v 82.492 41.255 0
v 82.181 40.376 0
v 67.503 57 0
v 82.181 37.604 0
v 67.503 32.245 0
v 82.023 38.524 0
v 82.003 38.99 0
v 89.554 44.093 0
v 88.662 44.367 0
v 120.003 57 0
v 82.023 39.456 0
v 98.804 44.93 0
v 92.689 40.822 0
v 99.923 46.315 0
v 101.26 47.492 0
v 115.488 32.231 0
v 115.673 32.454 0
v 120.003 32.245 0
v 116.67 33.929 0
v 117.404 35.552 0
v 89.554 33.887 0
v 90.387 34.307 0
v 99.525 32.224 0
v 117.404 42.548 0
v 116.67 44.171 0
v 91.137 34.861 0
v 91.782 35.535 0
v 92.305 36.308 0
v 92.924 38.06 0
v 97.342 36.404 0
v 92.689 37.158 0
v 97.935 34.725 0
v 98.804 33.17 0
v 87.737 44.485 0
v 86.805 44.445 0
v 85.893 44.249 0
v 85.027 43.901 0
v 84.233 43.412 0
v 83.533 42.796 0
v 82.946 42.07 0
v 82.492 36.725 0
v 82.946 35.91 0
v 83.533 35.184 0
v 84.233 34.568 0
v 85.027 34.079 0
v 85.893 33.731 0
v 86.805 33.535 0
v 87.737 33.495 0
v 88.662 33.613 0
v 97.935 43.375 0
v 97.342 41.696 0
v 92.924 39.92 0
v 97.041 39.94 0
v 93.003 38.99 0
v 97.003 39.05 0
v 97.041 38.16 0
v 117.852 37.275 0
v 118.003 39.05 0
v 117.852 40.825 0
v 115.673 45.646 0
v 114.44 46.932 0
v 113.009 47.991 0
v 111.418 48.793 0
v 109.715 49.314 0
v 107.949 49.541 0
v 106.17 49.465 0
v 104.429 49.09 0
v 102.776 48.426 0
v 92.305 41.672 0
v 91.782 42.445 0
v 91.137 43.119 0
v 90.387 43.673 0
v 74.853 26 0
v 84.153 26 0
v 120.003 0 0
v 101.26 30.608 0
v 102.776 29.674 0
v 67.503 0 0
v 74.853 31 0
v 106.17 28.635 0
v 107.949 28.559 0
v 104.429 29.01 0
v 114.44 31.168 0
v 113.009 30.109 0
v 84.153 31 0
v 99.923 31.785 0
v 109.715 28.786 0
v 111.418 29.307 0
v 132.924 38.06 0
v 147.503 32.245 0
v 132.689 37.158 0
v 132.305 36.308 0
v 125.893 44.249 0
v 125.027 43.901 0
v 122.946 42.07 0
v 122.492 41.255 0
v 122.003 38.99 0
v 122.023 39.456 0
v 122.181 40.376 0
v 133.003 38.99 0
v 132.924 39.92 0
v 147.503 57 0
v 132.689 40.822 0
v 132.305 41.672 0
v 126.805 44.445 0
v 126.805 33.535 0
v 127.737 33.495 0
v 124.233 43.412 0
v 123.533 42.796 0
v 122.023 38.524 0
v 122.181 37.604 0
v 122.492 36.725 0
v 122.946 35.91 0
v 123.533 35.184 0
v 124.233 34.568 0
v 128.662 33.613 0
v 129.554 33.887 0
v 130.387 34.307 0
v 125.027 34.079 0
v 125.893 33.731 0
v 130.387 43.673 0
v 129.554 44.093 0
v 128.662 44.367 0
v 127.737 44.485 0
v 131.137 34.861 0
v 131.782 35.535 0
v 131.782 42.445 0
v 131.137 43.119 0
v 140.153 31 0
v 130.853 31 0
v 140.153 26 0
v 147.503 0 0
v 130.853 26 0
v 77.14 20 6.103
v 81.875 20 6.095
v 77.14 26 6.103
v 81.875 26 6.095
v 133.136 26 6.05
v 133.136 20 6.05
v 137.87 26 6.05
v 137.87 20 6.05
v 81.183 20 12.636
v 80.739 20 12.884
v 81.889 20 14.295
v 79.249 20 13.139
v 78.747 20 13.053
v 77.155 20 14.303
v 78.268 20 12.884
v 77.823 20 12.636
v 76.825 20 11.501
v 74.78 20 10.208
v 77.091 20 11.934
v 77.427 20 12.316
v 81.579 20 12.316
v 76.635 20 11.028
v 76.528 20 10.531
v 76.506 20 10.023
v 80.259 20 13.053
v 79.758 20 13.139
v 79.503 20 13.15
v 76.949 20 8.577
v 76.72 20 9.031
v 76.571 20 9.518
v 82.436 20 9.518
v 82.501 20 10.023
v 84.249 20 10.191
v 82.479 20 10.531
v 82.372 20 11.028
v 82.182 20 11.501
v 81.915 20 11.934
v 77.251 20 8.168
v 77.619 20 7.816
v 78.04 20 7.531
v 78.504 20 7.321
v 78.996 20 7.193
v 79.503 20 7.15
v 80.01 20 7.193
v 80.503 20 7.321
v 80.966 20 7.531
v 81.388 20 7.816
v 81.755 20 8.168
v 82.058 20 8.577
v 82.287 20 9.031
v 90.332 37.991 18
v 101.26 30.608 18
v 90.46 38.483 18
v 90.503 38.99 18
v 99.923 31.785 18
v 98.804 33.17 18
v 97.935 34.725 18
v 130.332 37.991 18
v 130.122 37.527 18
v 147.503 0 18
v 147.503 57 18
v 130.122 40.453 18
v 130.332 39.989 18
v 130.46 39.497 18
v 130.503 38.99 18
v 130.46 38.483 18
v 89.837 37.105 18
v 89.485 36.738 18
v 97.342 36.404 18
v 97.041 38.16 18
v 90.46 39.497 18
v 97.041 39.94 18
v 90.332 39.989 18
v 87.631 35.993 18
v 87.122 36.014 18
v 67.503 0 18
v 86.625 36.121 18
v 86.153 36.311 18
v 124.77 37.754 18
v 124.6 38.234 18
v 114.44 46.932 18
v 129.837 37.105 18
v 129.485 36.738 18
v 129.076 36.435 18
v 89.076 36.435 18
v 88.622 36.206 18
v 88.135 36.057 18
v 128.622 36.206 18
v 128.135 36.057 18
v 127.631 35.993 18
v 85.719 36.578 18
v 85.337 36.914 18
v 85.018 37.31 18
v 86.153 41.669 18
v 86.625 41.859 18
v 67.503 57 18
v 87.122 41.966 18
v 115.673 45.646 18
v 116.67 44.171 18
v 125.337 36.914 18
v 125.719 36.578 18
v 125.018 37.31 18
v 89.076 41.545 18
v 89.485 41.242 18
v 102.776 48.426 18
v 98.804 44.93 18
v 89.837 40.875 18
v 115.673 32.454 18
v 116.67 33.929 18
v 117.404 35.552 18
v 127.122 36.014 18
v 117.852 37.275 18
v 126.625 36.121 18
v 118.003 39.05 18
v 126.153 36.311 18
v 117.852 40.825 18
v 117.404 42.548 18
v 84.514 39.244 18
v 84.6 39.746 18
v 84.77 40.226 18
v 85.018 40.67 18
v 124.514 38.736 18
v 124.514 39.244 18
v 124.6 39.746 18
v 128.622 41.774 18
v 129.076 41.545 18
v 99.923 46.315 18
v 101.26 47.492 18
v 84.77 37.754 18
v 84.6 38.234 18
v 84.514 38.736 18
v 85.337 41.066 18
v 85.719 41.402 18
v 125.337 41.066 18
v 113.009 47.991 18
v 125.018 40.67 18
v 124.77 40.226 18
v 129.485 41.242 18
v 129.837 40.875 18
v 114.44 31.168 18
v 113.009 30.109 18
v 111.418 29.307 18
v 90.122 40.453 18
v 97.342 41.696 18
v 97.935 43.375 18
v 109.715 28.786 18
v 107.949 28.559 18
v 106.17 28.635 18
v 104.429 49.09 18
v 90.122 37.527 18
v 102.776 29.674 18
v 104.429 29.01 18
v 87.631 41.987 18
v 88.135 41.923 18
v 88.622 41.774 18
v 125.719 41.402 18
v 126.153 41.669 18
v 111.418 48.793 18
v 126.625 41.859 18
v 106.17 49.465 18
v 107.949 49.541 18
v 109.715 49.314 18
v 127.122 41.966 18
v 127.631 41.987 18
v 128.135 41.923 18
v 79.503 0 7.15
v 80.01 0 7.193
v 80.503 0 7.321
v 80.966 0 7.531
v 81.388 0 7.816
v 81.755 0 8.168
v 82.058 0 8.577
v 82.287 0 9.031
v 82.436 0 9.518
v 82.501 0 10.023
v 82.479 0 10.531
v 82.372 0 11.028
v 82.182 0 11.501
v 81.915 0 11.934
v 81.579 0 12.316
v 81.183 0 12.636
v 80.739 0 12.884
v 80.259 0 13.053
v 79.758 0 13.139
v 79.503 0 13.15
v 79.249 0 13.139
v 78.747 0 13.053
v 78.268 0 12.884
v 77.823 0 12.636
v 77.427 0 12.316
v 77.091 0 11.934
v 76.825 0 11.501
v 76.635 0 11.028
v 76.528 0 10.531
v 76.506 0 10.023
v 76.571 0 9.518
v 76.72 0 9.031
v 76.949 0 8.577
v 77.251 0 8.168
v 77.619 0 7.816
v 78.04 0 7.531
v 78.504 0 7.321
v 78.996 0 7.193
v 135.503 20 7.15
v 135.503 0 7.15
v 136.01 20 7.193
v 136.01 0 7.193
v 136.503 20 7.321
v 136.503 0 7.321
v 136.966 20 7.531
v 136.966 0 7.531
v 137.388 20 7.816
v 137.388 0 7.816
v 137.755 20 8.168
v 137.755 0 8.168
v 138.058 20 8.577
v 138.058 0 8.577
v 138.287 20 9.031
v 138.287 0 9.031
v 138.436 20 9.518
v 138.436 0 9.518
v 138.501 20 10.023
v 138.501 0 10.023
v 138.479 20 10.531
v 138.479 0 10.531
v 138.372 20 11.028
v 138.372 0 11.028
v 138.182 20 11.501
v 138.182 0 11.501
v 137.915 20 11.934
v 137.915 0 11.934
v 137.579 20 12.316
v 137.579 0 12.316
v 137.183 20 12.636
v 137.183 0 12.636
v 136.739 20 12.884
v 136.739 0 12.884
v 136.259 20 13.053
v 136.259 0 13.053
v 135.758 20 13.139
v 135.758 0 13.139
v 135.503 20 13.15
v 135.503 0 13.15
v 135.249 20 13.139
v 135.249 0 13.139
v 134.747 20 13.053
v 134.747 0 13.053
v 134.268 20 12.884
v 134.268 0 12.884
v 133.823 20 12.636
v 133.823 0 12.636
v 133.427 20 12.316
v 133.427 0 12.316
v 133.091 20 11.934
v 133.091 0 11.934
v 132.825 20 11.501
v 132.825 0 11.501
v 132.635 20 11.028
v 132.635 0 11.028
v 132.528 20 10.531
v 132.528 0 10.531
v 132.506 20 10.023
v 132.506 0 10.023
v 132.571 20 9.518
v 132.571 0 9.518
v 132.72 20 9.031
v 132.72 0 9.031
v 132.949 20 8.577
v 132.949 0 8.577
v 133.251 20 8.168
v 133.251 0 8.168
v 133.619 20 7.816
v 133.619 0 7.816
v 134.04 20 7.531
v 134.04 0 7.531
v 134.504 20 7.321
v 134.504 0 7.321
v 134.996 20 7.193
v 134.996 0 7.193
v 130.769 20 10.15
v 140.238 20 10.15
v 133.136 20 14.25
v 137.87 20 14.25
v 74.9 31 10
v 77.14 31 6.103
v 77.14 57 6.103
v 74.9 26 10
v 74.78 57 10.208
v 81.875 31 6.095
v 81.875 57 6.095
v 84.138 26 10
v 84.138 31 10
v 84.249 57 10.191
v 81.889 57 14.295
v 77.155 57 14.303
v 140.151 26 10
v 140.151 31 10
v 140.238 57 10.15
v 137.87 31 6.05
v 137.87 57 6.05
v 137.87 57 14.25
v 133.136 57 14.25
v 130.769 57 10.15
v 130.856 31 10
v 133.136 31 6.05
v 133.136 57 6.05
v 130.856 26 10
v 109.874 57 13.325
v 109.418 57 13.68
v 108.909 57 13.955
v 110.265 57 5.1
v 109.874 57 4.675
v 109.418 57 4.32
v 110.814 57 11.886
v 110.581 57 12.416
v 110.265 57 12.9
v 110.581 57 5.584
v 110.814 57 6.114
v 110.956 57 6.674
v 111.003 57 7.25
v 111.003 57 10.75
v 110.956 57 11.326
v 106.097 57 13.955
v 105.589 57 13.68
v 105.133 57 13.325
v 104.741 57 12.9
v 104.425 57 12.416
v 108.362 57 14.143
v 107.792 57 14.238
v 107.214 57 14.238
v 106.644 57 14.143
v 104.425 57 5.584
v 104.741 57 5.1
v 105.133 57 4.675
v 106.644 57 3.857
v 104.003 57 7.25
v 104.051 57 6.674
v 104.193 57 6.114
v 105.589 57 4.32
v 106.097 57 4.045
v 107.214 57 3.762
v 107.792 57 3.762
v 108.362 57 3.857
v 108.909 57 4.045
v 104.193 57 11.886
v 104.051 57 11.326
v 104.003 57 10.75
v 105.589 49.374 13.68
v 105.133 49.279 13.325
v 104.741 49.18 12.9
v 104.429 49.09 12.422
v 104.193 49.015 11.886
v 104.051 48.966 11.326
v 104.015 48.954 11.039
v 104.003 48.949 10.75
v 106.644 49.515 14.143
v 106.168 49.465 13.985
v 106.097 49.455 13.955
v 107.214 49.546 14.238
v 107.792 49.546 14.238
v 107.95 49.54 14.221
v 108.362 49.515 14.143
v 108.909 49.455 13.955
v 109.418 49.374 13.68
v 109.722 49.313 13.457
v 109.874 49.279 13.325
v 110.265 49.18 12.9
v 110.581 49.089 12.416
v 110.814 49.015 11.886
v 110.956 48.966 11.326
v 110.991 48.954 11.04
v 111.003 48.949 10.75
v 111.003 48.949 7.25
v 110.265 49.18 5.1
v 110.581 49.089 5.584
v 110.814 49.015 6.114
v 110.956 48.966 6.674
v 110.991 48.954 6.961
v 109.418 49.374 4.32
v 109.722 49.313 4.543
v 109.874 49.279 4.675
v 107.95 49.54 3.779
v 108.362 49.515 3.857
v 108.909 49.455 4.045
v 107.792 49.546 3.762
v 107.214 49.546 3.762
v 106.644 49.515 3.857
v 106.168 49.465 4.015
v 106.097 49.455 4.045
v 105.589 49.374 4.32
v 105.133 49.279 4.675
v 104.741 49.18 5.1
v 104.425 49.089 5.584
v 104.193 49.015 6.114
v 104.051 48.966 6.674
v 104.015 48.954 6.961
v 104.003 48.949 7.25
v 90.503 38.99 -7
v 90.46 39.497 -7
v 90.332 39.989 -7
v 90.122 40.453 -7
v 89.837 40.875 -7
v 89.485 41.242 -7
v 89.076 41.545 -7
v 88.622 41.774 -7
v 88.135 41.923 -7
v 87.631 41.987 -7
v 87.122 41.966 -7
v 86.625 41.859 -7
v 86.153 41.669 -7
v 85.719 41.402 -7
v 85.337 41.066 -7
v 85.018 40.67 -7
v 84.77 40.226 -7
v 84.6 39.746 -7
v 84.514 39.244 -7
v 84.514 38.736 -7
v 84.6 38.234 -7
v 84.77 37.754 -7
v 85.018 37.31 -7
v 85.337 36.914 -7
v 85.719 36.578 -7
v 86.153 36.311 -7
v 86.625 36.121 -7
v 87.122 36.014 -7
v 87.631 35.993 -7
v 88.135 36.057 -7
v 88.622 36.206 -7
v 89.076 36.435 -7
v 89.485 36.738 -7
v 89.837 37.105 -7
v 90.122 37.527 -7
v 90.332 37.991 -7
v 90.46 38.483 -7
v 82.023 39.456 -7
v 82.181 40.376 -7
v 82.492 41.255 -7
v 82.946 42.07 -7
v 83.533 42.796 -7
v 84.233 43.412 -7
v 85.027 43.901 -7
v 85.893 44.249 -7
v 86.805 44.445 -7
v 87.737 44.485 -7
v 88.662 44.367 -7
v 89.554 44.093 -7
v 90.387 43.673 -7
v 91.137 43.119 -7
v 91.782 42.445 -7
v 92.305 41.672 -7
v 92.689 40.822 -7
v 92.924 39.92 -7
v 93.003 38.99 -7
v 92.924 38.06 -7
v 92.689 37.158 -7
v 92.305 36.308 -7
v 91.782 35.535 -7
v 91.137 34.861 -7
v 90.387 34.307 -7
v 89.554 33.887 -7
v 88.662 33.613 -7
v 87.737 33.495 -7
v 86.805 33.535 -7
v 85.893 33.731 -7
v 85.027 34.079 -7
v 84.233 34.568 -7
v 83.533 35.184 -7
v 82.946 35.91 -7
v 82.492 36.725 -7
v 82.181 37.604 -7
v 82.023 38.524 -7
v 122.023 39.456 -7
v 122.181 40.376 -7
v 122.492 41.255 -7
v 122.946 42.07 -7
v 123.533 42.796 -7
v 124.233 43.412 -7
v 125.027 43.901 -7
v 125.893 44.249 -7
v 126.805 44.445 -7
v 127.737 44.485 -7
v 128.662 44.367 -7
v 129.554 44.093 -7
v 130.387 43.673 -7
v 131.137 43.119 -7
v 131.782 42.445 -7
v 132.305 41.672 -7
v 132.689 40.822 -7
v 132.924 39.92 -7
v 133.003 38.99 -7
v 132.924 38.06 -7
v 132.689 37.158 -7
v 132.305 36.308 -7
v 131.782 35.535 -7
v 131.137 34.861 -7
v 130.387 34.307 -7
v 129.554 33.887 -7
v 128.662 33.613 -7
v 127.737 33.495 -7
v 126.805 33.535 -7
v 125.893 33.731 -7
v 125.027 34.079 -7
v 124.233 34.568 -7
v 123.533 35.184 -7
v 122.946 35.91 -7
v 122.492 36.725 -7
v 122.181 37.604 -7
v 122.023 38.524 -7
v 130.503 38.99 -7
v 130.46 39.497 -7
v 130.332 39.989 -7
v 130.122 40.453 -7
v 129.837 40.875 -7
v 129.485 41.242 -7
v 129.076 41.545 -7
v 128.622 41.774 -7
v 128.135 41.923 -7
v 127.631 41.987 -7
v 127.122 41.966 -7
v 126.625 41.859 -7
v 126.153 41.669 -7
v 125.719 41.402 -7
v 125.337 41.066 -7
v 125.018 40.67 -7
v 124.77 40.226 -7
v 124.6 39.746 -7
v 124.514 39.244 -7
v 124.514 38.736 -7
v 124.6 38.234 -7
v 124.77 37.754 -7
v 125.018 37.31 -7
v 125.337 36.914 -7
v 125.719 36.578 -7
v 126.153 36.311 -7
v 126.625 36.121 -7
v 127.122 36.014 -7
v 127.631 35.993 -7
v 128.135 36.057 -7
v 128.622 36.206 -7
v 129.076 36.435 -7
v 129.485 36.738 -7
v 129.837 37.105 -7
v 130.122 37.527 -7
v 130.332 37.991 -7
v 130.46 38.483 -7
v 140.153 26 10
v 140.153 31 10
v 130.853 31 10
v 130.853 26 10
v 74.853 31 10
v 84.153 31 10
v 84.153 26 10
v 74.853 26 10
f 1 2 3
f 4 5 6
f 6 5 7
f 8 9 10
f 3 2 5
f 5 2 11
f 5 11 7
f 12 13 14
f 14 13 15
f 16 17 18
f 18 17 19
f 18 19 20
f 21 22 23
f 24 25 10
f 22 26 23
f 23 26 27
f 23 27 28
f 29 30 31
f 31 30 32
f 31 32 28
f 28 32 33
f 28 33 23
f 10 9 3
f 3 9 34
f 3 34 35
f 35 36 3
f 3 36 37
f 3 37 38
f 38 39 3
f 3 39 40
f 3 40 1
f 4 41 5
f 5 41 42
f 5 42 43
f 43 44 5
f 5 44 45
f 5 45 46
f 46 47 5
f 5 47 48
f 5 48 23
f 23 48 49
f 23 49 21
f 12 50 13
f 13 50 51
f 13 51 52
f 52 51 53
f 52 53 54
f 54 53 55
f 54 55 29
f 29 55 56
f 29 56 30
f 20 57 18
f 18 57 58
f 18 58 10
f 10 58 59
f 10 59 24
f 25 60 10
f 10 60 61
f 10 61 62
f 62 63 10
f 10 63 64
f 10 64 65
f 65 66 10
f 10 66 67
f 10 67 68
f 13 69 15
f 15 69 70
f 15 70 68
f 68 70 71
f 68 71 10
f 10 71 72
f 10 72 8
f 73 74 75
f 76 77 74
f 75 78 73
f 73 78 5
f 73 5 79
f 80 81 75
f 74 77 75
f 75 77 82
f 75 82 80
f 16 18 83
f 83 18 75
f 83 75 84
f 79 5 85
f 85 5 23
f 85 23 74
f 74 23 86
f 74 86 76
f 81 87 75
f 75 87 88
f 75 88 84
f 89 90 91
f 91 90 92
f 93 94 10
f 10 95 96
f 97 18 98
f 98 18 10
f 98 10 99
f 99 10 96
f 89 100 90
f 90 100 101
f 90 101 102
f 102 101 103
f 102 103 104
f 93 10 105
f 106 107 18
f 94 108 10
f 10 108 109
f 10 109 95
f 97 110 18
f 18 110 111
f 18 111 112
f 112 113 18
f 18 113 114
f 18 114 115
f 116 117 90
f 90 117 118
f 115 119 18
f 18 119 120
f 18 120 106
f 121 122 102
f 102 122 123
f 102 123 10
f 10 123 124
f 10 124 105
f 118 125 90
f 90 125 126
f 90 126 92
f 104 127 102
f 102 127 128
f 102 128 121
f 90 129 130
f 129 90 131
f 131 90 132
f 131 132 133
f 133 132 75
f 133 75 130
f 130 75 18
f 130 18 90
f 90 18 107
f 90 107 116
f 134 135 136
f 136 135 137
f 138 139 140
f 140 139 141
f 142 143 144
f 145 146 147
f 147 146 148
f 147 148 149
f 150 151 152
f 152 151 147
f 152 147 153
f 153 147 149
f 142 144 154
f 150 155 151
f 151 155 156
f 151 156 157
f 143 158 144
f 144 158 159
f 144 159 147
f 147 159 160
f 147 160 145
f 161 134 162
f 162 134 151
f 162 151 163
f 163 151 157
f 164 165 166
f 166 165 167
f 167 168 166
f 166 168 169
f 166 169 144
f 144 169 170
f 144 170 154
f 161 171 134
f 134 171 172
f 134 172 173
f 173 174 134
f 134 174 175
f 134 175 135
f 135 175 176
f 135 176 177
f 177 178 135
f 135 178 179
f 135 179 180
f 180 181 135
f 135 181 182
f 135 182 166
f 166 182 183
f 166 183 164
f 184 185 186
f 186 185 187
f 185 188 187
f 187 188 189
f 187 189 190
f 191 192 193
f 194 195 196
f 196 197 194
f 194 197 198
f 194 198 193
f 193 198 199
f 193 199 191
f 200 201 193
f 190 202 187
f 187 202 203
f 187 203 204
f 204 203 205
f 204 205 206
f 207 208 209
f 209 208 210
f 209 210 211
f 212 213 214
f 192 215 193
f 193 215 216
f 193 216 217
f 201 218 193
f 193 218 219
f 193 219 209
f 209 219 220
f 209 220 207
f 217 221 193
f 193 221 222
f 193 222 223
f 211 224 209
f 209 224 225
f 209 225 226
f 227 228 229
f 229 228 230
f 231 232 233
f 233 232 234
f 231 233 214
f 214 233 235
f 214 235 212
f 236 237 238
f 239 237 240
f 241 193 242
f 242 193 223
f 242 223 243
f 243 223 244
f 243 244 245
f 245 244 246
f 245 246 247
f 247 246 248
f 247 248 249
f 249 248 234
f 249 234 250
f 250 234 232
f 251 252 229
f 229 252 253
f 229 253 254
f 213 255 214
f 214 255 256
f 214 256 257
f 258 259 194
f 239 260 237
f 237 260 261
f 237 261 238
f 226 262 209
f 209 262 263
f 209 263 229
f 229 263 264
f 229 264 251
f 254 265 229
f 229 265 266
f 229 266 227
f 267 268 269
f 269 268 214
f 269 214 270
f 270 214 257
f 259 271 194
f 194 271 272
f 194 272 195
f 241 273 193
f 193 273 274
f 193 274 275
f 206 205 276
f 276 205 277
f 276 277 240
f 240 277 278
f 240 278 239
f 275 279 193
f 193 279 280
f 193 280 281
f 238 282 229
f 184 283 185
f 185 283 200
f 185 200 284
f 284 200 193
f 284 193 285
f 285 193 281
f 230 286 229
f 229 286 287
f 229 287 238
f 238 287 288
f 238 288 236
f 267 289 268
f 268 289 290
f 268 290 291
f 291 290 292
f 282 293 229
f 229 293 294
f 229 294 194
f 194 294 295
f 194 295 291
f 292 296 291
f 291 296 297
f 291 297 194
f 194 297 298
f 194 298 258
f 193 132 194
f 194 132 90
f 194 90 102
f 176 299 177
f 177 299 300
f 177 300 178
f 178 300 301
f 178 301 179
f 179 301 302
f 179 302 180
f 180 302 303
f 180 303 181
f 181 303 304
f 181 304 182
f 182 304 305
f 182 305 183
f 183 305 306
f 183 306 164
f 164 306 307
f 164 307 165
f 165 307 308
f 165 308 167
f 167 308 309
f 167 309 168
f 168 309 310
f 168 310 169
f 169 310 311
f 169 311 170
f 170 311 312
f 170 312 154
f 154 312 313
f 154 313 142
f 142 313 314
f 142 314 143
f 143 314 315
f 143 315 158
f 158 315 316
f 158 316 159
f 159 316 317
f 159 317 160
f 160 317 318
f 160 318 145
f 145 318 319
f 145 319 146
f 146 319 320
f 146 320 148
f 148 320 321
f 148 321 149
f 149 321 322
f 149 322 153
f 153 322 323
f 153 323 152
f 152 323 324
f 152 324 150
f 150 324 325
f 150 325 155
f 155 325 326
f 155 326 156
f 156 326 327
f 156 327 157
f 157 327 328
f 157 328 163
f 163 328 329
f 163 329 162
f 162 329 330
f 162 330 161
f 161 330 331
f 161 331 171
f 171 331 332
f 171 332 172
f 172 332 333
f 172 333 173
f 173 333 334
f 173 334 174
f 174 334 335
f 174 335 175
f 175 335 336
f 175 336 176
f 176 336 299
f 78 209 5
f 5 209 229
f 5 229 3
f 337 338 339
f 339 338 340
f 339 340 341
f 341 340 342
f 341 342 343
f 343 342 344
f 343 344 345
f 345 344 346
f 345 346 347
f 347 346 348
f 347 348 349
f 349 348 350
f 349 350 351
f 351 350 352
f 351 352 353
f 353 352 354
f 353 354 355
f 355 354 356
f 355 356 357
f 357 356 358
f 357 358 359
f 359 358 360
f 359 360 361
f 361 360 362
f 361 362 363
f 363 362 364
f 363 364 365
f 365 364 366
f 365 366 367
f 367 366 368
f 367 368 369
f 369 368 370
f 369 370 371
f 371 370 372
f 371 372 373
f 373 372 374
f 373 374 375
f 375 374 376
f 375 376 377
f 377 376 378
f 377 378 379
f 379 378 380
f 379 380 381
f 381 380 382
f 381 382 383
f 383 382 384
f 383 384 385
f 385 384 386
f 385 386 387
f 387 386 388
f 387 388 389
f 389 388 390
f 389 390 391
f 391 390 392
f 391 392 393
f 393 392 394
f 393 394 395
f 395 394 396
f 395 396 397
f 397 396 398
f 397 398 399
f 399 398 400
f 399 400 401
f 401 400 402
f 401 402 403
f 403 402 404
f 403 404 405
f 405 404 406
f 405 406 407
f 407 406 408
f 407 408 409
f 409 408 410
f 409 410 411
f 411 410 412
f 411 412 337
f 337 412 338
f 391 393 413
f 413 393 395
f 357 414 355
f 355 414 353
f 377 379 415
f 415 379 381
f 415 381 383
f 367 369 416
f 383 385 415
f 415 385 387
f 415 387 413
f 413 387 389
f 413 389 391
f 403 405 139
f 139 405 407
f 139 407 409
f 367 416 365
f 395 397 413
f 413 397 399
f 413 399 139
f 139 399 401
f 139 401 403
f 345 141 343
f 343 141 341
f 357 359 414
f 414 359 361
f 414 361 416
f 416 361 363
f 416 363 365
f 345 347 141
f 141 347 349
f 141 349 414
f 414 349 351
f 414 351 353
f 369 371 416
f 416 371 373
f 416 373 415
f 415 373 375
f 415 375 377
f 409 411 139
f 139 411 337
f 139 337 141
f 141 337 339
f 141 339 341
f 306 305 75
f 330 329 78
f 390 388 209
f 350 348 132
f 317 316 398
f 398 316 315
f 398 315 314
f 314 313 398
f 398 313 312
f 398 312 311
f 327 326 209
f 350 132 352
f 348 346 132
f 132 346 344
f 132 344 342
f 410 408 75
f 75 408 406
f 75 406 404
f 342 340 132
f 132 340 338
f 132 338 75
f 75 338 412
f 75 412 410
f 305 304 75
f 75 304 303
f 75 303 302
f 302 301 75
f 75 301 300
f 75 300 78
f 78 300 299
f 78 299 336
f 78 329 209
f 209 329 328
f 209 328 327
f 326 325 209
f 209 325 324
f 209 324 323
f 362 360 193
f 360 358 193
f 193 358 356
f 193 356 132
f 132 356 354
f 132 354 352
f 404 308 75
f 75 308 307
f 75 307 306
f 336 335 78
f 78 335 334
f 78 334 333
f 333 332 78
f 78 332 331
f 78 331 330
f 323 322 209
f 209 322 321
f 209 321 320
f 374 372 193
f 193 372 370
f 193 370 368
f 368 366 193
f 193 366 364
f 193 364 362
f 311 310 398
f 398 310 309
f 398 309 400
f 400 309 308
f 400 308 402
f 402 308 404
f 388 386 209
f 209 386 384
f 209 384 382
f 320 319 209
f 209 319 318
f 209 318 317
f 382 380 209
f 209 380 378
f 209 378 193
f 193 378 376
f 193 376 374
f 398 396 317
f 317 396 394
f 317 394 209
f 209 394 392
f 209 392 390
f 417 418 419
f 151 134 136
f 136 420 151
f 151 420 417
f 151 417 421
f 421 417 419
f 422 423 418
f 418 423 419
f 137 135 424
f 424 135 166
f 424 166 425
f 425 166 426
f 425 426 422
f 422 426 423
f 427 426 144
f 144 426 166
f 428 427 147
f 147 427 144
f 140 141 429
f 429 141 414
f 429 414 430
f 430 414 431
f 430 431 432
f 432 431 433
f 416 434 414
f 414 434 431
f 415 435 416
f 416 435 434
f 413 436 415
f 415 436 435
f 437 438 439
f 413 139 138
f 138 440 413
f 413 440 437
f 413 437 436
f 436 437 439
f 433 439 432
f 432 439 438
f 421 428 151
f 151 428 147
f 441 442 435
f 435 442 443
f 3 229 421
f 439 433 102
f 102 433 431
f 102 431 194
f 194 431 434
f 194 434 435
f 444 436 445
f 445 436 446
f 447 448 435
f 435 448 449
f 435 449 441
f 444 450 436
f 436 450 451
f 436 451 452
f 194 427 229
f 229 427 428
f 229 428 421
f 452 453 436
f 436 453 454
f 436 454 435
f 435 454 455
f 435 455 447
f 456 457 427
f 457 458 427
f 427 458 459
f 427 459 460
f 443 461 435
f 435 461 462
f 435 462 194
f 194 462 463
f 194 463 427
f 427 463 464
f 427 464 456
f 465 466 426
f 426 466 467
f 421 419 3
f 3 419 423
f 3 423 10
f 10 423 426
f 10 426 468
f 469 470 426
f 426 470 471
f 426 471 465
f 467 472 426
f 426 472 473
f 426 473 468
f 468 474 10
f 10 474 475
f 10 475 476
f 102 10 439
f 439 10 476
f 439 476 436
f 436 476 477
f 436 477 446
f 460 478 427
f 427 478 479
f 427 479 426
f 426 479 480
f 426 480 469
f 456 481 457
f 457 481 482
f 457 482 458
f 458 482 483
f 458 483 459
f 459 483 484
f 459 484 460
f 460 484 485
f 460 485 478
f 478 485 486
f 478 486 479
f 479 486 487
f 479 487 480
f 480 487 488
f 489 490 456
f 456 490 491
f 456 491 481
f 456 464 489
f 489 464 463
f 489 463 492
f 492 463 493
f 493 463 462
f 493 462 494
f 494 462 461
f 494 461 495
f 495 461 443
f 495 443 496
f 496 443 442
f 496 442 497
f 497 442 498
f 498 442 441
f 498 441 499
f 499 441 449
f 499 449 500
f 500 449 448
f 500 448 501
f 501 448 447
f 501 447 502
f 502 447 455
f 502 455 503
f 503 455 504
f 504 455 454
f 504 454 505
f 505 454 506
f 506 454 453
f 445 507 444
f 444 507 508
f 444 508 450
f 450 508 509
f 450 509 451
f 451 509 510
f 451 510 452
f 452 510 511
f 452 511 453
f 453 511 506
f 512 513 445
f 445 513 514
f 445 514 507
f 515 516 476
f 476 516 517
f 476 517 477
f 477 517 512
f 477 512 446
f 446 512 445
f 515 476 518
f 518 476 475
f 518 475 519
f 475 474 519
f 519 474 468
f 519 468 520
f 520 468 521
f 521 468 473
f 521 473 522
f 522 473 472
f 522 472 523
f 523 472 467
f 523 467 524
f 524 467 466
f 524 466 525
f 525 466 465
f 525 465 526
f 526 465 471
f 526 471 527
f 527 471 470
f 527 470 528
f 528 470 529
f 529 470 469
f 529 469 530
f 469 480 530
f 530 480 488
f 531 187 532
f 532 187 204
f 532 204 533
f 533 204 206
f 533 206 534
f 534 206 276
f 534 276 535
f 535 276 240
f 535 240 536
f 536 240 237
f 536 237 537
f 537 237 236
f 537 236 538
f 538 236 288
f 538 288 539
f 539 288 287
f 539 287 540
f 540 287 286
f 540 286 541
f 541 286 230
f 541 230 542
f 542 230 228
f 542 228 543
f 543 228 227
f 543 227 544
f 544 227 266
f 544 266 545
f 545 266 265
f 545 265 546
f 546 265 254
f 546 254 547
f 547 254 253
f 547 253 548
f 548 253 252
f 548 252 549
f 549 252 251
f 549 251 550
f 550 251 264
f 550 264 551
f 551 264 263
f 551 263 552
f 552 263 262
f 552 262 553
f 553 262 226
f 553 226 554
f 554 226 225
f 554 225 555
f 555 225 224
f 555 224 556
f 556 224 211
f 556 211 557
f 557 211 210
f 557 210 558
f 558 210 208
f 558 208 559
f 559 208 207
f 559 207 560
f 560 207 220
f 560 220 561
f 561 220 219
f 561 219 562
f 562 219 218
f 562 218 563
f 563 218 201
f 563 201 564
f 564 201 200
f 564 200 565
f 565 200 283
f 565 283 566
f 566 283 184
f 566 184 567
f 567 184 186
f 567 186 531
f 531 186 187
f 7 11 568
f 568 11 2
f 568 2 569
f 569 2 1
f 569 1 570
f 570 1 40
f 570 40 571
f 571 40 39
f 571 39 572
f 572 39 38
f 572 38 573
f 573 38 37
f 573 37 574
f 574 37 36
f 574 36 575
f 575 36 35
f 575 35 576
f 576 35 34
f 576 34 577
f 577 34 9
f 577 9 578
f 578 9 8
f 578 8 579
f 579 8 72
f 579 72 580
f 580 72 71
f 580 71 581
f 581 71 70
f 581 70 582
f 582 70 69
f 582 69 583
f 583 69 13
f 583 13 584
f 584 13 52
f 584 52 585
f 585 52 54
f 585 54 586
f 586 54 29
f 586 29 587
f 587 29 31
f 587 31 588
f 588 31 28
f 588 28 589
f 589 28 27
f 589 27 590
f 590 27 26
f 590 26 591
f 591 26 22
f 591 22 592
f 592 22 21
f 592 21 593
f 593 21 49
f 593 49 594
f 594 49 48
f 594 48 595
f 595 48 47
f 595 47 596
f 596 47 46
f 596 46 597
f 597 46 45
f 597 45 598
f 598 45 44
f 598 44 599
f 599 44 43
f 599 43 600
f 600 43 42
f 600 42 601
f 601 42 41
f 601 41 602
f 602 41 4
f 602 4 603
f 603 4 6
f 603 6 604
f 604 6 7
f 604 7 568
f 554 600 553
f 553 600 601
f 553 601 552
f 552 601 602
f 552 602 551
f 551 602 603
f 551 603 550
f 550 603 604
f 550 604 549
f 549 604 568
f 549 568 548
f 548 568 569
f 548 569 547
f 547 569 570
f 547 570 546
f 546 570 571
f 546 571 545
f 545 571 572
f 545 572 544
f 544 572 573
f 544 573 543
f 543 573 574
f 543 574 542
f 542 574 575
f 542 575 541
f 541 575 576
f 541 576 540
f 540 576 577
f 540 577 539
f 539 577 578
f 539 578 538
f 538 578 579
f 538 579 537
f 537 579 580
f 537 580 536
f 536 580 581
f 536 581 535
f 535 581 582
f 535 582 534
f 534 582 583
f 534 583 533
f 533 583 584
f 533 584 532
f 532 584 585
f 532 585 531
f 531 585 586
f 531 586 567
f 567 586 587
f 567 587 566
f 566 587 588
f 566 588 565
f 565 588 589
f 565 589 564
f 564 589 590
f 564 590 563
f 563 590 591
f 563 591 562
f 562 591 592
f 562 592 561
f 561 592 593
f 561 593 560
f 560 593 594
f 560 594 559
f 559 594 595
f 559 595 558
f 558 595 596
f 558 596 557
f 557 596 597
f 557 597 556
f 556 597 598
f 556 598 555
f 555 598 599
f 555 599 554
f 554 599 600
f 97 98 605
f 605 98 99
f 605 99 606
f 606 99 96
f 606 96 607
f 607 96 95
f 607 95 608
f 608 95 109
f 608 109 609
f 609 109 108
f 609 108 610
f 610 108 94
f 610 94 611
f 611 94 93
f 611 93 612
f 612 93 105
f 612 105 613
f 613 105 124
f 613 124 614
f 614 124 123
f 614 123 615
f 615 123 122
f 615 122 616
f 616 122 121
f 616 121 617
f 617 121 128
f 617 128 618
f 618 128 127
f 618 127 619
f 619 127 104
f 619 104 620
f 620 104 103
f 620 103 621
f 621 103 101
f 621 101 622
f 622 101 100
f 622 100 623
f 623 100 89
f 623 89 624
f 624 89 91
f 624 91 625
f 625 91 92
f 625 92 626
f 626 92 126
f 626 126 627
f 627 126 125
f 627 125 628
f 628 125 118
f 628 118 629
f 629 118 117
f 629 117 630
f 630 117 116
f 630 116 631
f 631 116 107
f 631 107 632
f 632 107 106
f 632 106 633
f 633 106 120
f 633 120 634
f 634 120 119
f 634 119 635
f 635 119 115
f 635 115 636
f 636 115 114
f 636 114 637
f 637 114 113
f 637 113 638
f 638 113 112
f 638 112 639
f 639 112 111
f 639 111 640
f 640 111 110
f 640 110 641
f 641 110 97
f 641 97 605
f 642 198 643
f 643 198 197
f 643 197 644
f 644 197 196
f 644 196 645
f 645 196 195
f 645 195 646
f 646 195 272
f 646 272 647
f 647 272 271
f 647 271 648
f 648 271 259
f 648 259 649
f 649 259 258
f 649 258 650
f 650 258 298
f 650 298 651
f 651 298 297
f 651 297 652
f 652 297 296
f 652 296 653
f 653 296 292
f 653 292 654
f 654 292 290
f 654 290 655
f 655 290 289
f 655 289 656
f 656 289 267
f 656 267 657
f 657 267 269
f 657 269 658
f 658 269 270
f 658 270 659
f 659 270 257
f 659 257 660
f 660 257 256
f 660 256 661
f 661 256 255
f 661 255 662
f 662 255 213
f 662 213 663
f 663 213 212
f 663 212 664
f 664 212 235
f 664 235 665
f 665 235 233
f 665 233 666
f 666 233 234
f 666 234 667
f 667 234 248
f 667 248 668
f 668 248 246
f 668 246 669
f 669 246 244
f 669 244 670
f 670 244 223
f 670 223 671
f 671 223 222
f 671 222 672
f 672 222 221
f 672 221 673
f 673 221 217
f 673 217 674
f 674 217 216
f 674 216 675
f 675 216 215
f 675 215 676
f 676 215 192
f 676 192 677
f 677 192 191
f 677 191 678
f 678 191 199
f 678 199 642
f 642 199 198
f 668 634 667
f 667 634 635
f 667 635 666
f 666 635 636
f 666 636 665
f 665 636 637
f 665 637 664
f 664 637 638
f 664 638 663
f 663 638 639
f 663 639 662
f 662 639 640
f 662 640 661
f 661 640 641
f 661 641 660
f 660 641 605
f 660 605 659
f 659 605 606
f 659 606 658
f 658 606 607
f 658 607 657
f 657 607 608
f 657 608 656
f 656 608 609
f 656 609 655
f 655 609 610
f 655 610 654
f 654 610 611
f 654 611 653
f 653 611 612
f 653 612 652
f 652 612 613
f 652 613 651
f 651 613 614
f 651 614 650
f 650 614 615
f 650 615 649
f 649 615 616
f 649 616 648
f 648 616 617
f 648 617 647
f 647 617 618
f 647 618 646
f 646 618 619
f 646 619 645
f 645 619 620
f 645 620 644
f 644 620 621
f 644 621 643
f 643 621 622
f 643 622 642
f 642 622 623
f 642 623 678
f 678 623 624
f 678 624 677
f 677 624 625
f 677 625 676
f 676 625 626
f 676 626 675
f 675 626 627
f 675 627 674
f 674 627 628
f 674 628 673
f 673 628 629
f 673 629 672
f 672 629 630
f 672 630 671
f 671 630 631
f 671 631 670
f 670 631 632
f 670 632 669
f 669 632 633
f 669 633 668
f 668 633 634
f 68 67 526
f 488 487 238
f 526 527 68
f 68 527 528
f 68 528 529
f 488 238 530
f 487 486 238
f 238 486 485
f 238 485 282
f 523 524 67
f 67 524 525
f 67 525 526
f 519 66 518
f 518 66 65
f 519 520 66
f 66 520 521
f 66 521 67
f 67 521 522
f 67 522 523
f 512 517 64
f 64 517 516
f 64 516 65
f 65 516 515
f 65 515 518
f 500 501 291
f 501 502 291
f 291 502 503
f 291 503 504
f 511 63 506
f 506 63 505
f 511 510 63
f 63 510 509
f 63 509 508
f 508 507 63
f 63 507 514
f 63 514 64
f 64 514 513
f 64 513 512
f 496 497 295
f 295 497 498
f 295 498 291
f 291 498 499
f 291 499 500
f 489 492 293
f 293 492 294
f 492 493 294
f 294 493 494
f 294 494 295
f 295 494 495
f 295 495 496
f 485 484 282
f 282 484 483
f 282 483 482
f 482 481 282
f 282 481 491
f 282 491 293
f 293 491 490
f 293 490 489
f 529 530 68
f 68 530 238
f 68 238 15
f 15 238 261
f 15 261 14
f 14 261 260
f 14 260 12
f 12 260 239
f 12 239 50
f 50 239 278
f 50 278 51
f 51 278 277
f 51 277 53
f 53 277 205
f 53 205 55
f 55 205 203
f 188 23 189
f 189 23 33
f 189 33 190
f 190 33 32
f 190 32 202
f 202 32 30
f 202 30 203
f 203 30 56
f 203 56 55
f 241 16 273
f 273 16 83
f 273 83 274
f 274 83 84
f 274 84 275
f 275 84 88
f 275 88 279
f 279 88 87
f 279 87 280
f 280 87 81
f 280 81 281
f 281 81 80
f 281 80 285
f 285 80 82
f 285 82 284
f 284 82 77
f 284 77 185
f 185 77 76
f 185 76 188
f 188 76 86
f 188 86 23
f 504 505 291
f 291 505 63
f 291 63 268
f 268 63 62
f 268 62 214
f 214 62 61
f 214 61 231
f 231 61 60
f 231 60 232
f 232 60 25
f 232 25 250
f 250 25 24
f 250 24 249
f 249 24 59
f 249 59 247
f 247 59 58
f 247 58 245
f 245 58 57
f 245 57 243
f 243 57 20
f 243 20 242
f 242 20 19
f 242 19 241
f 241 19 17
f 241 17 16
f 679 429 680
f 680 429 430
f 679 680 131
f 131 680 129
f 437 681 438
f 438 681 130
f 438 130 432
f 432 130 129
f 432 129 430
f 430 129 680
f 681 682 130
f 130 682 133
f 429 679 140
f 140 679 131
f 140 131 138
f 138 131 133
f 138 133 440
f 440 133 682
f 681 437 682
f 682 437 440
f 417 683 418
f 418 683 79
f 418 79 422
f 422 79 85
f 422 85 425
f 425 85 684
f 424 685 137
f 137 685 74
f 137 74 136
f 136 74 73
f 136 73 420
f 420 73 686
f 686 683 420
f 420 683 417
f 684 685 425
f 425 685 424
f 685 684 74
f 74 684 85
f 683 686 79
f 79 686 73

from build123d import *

# Parameters (mm, degrees)
SKETCH1_W           = 80
SKETCH1_H           = 18
SKETCH1_R           = 3
BOSS_EXTRUDE1_DEPTH = 20
SKETCH1_3_W         = 27.5
SKETCH1_3_H         = 18
SKETCH1_3_W_2       = 25
SKETCH1_3_R         = 3.5
BOSS_EXTRUDE2_DEPTH = 47
BOSS_EXTRUDE3_START = 47
SKETCH1_6_W         = 80
SKETCH1_6_H         = 18
BOSS_EXTRUDE3_DEPTH = 10
SKETCH2_R           = 5.5
SKETCH2_R_2         = 4.475
SKETCH2_R_3         = 3
BOSS_EXTRUDE4_DEPTH = 25
SKETCH2_6_R         = 10.5
SKETCH2_6_R_2       = 3
CUT_EXTRUDE5_DEPTH  = 161.097543738
SKETCH1_8_R         = 3
CUT_EXTRUDE6_DEPTH  = 57
CUT_EXTRUDE13_START = 27
SKETCH1_12_R        = 3
CUT_EXTRUDE13_DEPTH = 30
CUT_EXTRUDE14_START = -18
SKETCH2_7_W         = 9.3
SKETCH2_7_H         = 5
CUT_EXTRUDE14_DEPTH = 10


with BuildPart() as part:
    # Sketch1 → Boss-Extrude1 (new body)
    with BuildSketch(Plane(origin=(0, 0, 0), x_dir=(1, 0, 0), z_dir=(0, 1, 0))):
        with Locations((107.5033, -9)):
            Rectangle(SKETCH1_W, SKETCH1_H)
        with Locations(Location((135.5033, -10.15, 0), (0, 0, 270))):
            Circle(SKETCH1_R, mode=Mode.SUBTRACT)
        with Locations(Location((79.5033, -10.15, 0), (0, 0, 270))):
            Circle(SKETCH1_R, mode=Mode.SUBTRACT)
    extrude(amount=BOSS_EXTRUDE1_DEPTH)

    # Sketch1<3> → Boss-Extrude2 (add)
    # profile 1 of 11: a face of its own
    with BuildSketch(Plane(origin=(0, 0, 0), x_dir=(1, 0, 0), z_dir=(0, 1, 0))):
        with Locations((133.7533, -9)):
            Rectangle(SKETCH1_3_W, SKETCH1_3_H)
        Polygon((133.136163896, -6.05), (137.870436104, -6.05), (140.237572207, -10.15), (137.870436104, -14.25), (133.136163896, -14.25), (130.769027793, -10.15), align=None, mode=Mode.SUBTRACT)
    # profile 2 of 11: a face of its own
    with BuildSketch(Plane(origin=(0, 0, 0), x_dir=(1, 0, 0), z_dir=(0, 1, 0))):
        with Locations((81.2533, -9)):
            Rectangle(SKETCH1_3_W, SKETCH1_3_H)
        Polygon((81.88895579, -14.295097543), (77.154690915, -14.303429856), (74.780342483, -10.207602362), (77.140258926, -6.103442556), (81.874523801, -6.095110243), (84.248872233, -10.190937737), align=None, mode=Mode.SUBTRACT)
    # profile 3 of 11: a face of its own
    with BuildSketch(Plane(origin=(0, 0, 0), x_dir=(1, 0, 0), z_dir=(0, 1, 0))):
        with Locations((107.5033, -9)):
            Rectangle(SKETCH1_3_W_2, SKETCH1_3_H)
        with BuildLine():
            ThreePointArc((111.0033, -10.75), (107.5033, -14.25), (104.0033, -10.75))
            Line((104.0033, -10.75), (104.0033, -7.25))
            ThreePointArc((104.0033, -7.25), (107.5033, -3.75), (111.0033, -7.25))
            Line((111.0033, -7.25), (111.0033, -10.75))
        make_face(mode=Mode.SUBTRACT)
    # profile 4 of 11: a face of its own
    with BuildSketch(Plane(origin=(0, 0, 0), x_dir=(1, 0, 0), z_dir=(0, 1, 0))):
        with Locations((107.5033, -10.75)):
            Circle(SKETCH1_3_R)
    # profile 5 of 11: a face of its own
    with BuildSketch(Plane(origin=(0, 0, 0), x_dir=(1, 0, 0), z_dir=(0, 1, 0))):
        with Locations((107.5033, -7.25)):
            Circle(SKETCH1_3_R)
    # profile 6 of 11: a face of its own
    with BuildSketch(Plane(origin=(0, 0, 0), x_dir=(1, 0, 0), z_dir=(0, 1, 0))):
        with Locations((107.5033, -7.25)):
            Circle(SKETCH1_3_R)
    # profile 7 of 11: a face of its own
    with BuildSketch(Plane(origin=(0, 0, 0), x_dir=(1, 0, 0), z_dir=(0, 1, 0))):
        with Locations((107.5033, -10.75)):
            Circle(SKETCH1_3_R)
    # profile 8 of 11: a face of its own
    with BuildSketch(Plane(origin=(0, 0, 0), x_dir=(1, 0, 0), z_dir=(0, 1, 0))):
        with BuildLine():
            Line((104.0033, -7.25), (104.0033, -10.75))
            ThreePointArc((104.0033, -10.75), (104.122559608, -9.844133342), (104.472211087, -9))
            ThreePointArc((104.472211087, -9), (104.122559608, -8.155866658), (104.0033, -7.25))
        make_face()
    # profile 9 of 11: a face of its own
    with BuildSketch(Plane(origin=(0, 0, 0), x_dir=(1, 0, 0), z_dir=(0, 1, 0))):
        with BuildLine():
            ThreePointArc((110.534388913, -9), (110.884040392, -9.844133342), (111.0033, -10.75))
            Line((111.0033, -10.75), (111.0033, -7.25))
            ThreePointArc((111.0033, -7.25), (110.884040392, -8.155866658), (110.534388913, -9))
        make_face()
    # profile 10 of 11: a face of its own
    with BuildSketch(Plane(origin=(0, 0, 0), x_dir=(1, 0, 0), z_dir=(0, 1, 0))):
        with Locations((107.5033, -10.75)):
            Circle(SKETCH1_3_R)
    # profile 11 of 11: a face of its own
    with BuildSketch(Plane(origin=(0, 0, 0), x_dir=(1, 0, 0), z_dir=(0, 1, 0))):
        with Locations((107.5033, -7.25)):
            Circle(SKETCH1_3_R)
    extrude(amount=BOSS_EXTRUDE2_DEPTH)

    # Sketch1<6> → Boss-Extrude3 (add)
    with BuildSketch(Plane(origin=(0, 0, 0), x_dir=(1, 0, 0), z_dir=(0, 1, 0)).offset(BOSS_EXTRUDE3_START)):
        with Locations((107.5033, -9)):
            Rectangle(SKETCH1_6_W, SKETCH1_6_H)
        Polygon((133.136163896, -6.05), (137.870436104, -6.05), (140.237572207, -10.15), (137.870436104, -14.25), (133.136163896, -14.25), (130.769027793, -10.15), align=None, mode=Mode.SUBTRACT)
        with BuildLine():
            Line((104.0033, -10.75), (104.0033, -7.25))
            ThreePointArc((104.0033, -7.25), (107.5033, -3.75), (111.0033, -7.25))
            Line((111.0033, -7.25), (111.0033, -10.75))
            ThreePointArc((111.0033, -10.75), (107.5033, -14.25), (104.0033, -10.75))
        make_face(mode=Mode.SUBTRACT)
        Polygon((77.154690915, -14.303429856), (74.780342483, -10.207602362), (77.140258926, -6.103442556), (81.874523801, -6.095110243), (84.248872233, -10.190937737), (81.88895579, -14.295097543), align=None, mode=Mode.SUBTRACT)
    extrude(amount=BOSS_EXTRUDE3_DEPTH)

    # Sketch2 → Boss-Extrude4 (add)
    # profile 1 of 4: a face of its own
    with BuildSketch(Plane.XY.offset(18)):
        with Locations((87.5033, 38.99)):
            Circle(SKETCH2_R)
        with Locations((87.5033, 38.99)):
            Circle(SKETCH2_R_2, mode=Mode.SUBTRACT)
    # profile 2 of 4: a face of its own
    with BuildSketch(Plane.XY.offset(18)):
        with Locations((87.5033, 38.99)):
            Circle(SKETCH2_R_2)
        with Locations((87.5033, 38.99)):
            Circle(SKETCH2_R_3, mode=Mode.SUBTRACT)
    # profile 3 of 4: a face of its own
    with BuildSketch(Plane.XY.offset(18)):
        with Locations((127.5033, 38.99)):
            Circle(SKETCH2_R)
        with Locations((127.5033, 38.99)):
            Circle(SKETCH2_R_2, mode=Mode.SUBTRACT)
    # profile 4 of 4: a face of its own
    with BuildSketch(Plane.XY.offset(18)):
        with Locations((127.5033, 38.99)):
            Circle(SKETCH2_R_2)
        with Locations((127.5033, 38.99)):
            Circle(SKETCH2_R_3, mode=Mode.SUBTRACT)
    extrude(amount=-BOSS_EXTRUDE4_DEPTH)

    # Sketch2<6> → Cut-Extrude5 (cut, through all)
    with BuildSketch(Plane.XY.offset(18)):
        with Locations((107.5033, 39.05)):
            Circle(SKETCH2_6_R)
        with Locations((87.5033, 38.99)):
            Circle(SKETCH2_6_R_2)
        with Locations((127.5033, 38.99)):
            Circle(SKETCH2_6_R_2)
    extrude(amount=-CUT_EXTRUDE5_DEPTH, mode=Mode.SUBTRACT)

    # Sketch1<8> → Cut-Extrude6 (cut)
    with BuildSketch(Plane(origin=(0, 0, 0), x_dir=(1, 0, 0), z_dir=(0, 1, 0))):
        with Locations(Location((135.5033, -10.15, 0), (0, 0, 270))):
            Circle(SKETCH1_8_R)
        with Locations(Location((79.5033, -10.15, 0), (0, 0, 270))):
            Circle(SKETCH1_8_R)
    extrude(amount=CUT_EXTRUDE6_DEPTH, mode=Mode.SUBTRACT)

    # Sketch1<12> → Cut-Extrude13 (cut)
    # profile 1 of 2: a face of its own
    with BuildSketch(Plane(origin=(0, 0, 0), x_dir=(1, 0, 0), z_dir=(0, 1, 0)).offset(CUT_EXTRUDE13_START)):
        Polygon((137.870436104, -14.25), (140.237572207, -10.15), (137.870436104, -6.05), (133.136163896, -6.05), (130.769027793, -10.15), (133.136163896, -14.25), align=None)
        with Locations(Location((135.5033, -10.15, 0), (0, 0, 270))):
            Circle(SKETCH1_12_R, mode=Mode.SUBTRACT)
    # profile 2 of 2: a face of its own
    with BuildSketch(Plane(origin=(0, 0, 0), x_dir=(1, 0, 0), z_dir=(0, 1, 0)).offset(CUT_EXTRUDE13_START)):
        Polygon((77.140258926, -6.103442556), (81.874523801, -6.095110243), (84.248872233, -10.190937737), (81.88895579, -14.295097543), (77.154690915, -14.303429856), (74.780342483, -10.207602362), align=None)
        with Locations(Location((79.5033, -10.15, 0), (0, 0, 270))):
            Circle(SKETCH1_12_R, mode=Mode.SUBTRACT)
    extrude(amount=CUT_EXTRUDE13_DEPTH, mode=Mode.SUBTRACT)

    # Sketch2<7> → Cut-Extrude14 (cut)
    with BuildSketch(Plane.XY.offset(18).offset(CUT_EXTRUDE14_START)):
        with Locations((79.5033, 28.5)):
            Rectangle(SKETCH2_7_W, SKETCH2_7_H)
        with Locations((135.5033, 28.5)):
            Rectangle(SKETCH2_7_W, SKETCH2_7_H)
    extrude(amount=CUT_EXTRUDE14_DEPTH, mode=Mode.SUBTRACT)


solid = part.part
